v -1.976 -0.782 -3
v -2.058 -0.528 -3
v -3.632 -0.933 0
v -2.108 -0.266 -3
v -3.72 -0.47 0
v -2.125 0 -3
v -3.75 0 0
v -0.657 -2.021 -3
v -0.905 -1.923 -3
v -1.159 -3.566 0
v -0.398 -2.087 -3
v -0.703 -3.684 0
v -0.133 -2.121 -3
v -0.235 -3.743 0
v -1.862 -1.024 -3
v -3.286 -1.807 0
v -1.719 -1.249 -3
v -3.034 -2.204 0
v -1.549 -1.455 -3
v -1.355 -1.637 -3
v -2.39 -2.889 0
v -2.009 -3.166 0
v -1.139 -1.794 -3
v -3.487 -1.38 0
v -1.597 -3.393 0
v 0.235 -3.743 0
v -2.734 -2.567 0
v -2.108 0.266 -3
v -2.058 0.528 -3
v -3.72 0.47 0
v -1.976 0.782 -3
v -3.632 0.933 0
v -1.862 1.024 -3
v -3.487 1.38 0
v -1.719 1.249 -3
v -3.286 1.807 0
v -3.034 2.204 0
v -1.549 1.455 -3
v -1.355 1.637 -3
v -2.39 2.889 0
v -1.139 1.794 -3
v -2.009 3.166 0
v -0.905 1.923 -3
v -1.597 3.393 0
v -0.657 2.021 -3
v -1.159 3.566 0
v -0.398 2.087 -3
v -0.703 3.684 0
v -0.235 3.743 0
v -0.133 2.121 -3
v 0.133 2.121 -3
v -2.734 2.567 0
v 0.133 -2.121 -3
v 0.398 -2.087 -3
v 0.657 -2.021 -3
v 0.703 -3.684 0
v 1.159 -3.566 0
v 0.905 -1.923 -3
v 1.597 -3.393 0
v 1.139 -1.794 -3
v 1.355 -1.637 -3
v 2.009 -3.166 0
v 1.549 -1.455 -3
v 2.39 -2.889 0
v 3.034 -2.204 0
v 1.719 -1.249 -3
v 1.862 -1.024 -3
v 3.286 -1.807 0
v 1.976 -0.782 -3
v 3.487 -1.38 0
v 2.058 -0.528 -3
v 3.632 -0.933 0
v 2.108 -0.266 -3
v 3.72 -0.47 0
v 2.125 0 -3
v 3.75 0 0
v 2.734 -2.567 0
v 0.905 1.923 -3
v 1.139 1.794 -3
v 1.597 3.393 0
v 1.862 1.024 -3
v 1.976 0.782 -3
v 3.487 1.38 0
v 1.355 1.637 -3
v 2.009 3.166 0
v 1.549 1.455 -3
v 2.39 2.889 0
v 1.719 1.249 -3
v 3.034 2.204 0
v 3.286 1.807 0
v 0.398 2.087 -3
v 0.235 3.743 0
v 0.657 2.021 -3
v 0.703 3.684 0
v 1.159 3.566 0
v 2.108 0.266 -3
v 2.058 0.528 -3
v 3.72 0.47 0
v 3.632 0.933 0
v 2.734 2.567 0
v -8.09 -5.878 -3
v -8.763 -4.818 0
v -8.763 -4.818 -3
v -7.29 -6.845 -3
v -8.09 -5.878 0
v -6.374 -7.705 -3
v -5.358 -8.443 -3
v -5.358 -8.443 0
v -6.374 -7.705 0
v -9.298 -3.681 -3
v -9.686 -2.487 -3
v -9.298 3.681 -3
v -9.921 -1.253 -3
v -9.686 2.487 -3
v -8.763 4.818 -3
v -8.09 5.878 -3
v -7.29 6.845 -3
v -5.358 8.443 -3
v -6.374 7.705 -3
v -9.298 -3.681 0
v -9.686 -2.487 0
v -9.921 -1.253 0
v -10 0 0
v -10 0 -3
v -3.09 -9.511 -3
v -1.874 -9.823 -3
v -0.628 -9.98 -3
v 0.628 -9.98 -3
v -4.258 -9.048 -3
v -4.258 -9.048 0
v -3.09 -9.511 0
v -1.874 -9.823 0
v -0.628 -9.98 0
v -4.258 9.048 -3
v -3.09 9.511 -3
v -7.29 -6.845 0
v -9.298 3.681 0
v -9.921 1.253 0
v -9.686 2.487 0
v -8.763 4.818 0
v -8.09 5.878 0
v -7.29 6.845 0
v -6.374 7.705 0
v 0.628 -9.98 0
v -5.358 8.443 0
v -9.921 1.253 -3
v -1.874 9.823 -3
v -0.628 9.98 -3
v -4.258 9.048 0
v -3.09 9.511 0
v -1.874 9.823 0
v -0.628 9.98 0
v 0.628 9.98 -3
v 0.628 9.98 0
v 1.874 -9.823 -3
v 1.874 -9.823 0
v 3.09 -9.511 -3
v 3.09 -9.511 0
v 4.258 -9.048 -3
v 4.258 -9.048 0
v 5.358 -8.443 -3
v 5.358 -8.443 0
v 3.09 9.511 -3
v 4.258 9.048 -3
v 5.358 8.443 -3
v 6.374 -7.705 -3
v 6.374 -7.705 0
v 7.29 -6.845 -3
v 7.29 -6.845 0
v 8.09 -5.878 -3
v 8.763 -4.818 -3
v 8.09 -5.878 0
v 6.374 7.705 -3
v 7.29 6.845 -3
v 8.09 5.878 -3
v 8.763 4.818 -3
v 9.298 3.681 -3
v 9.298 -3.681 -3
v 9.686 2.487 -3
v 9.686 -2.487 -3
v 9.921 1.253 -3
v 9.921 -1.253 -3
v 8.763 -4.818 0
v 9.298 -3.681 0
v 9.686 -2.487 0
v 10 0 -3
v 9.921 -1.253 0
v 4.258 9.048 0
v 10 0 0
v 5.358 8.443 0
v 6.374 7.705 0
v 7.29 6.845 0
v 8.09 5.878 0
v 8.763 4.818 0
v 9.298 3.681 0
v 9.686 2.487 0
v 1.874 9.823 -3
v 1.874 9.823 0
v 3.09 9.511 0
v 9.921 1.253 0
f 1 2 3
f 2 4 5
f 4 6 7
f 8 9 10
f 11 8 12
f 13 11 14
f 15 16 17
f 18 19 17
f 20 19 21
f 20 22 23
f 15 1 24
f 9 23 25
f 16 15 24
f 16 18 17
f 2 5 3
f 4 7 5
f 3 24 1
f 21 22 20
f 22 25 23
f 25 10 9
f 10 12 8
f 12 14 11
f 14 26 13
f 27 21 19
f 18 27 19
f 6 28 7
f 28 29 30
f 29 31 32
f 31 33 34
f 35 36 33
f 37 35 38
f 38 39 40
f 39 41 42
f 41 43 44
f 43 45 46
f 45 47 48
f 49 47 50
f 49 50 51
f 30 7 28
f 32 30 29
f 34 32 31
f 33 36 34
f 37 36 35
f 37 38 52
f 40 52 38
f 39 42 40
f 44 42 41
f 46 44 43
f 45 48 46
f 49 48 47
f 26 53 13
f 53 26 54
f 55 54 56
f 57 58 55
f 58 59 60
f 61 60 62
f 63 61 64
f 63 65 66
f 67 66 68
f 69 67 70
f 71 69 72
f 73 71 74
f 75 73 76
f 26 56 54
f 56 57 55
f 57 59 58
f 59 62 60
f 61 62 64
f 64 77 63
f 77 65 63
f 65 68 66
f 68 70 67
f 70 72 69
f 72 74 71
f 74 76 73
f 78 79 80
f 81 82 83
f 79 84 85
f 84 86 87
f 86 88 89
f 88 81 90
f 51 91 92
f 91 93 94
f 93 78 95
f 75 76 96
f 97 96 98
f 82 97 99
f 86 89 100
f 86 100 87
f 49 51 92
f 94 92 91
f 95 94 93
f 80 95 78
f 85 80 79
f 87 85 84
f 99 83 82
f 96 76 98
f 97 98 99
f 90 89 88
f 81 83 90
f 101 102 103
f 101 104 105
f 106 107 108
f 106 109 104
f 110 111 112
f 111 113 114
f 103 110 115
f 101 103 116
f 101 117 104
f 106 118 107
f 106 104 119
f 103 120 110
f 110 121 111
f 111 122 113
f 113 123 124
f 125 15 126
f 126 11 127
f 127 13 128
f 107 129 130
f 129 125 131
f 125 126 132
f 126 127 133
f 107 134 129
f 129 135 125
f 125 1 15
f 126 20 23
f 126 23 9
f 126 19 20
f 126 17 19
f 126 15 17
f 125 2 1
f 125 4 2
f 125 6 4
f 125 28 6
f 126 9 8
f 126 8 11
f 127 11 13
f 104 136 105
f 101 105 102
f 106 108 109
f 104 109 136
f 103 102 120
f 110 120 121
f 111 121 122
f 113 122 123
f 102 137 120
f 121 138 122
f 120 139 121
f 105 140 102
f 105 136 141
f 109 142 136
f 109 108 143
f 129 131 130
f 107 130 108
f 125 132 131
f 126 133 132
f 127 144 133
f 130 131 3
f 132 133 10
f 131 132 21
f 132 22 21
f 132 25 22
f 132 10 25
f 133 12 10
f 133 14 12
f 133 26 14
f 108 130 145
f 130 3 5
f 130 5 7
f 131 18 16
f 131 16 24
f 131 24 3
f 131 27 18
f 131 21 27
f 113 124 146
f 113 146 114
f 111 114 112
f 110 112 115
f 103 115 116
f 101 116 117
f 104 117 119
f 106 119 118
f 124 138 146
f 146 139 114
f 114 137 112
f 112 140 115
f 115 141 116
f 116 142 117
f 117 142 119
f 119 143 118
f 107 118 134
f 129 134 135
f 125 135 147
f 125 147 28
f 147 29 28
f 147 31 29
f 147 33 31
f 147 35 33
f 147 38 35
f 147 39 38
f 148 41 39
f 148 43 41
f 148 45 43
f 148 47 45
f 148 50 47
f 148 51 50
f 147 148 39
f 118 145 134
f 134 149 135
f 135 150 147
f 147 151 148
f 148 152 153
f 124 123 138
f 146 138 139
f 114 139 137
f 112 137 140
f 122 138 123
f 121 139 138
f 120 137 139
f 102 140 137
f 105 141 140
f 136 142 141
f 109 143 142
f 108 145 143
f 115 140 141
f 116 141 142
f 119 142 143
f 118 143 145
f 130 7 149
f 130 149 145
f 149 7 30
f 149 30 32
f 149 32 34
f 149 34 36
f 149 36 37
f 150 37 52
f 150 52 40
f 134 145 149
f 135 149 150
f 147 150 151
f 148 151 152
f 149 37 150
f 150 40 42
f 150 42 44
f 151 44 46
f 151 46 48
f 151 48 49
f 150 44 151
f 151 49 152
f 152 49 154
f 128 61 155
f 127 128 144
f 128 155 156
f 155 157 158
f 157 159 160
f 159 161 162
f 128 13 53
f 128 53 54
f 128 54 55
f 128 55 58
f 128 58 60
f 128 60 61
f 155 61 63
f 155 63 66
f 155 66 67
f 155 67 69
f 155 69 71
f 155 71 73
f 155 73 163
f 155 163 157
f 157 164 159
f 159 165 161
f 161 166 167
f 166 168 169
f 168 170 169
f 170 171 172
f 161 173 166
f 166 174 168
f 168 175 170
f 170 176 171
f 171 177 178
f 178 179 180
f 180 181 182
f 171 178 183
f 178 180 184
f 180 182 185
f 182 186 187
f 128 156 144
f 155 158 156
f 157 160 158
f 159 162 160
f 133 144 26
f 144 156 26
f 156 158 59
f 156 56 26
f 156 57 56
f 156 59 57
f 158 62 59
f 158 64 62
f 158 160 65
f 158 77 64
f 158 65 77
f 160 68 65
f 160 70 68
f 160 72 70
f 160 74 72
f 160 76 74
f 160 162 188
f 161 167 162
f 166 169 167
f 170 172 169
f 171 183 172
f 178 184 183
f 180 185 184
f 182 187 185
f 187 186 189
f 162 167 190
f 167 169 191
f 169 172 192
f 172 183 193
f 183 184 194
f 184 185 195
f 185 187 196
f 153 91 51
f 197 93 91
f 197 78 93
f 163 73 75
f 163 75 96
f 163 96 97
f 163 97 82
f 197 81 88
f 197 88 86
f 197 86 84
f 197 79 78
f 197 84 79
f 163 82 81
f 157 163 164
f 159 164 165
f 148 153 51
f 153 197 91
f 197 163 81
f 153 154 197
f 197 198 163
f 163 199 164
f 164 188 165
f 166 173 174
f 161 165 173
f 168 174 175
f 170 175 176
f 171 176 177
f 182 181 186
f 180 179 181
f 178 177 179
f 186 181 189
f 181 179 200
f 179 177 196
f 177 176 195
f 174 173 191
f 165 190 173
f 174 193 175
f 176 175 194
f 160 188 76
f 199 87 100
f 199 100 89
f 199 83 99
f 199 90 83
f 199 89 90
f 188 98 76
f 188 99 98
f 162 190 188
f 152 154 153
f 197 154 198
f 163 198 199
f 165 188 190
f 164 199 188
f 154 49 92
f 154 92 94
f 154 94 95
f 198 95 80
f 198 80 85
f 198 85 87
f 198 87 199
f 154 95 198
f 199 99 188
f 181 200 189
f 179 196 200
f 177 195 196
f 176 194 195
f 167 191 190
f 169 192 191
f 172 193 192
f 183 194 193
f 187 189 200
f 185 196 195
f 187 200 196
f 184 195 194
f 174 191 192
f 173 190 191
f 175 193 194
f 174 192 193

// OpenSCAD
$fn = 50;


difference() {
	union() {
		translate(v = [0, 0, -3.0000000000]) {
			cylinder(h = 3, r = 10.0000000000);
		}
	}
	union() {
		translate(v = [0, 0, 0]) {
			rotate(a = [0, 0, 0]) {
				difference() {
					union() {
						translate(v = [0, 0, -6.0000000000]) {
							cylinder(h = 6, r = 2.0000000000);
						}
						translate(v = [0, 0, -3]) {
							cylinder(h = 3, r1 = 2.1250000000, r2 = 3.7500000000);
						}
						translate(v = [0, 0, -6.0000000000]) {
							cylinder(h = 6, r = 2.1250000000);
						}
						translate(v = [0, 0, -6.0000000000]) {
							cylinder(h = 6, r = 2.0000000000);
						}
					}
					union();
				}
			}
		}
	}
}
